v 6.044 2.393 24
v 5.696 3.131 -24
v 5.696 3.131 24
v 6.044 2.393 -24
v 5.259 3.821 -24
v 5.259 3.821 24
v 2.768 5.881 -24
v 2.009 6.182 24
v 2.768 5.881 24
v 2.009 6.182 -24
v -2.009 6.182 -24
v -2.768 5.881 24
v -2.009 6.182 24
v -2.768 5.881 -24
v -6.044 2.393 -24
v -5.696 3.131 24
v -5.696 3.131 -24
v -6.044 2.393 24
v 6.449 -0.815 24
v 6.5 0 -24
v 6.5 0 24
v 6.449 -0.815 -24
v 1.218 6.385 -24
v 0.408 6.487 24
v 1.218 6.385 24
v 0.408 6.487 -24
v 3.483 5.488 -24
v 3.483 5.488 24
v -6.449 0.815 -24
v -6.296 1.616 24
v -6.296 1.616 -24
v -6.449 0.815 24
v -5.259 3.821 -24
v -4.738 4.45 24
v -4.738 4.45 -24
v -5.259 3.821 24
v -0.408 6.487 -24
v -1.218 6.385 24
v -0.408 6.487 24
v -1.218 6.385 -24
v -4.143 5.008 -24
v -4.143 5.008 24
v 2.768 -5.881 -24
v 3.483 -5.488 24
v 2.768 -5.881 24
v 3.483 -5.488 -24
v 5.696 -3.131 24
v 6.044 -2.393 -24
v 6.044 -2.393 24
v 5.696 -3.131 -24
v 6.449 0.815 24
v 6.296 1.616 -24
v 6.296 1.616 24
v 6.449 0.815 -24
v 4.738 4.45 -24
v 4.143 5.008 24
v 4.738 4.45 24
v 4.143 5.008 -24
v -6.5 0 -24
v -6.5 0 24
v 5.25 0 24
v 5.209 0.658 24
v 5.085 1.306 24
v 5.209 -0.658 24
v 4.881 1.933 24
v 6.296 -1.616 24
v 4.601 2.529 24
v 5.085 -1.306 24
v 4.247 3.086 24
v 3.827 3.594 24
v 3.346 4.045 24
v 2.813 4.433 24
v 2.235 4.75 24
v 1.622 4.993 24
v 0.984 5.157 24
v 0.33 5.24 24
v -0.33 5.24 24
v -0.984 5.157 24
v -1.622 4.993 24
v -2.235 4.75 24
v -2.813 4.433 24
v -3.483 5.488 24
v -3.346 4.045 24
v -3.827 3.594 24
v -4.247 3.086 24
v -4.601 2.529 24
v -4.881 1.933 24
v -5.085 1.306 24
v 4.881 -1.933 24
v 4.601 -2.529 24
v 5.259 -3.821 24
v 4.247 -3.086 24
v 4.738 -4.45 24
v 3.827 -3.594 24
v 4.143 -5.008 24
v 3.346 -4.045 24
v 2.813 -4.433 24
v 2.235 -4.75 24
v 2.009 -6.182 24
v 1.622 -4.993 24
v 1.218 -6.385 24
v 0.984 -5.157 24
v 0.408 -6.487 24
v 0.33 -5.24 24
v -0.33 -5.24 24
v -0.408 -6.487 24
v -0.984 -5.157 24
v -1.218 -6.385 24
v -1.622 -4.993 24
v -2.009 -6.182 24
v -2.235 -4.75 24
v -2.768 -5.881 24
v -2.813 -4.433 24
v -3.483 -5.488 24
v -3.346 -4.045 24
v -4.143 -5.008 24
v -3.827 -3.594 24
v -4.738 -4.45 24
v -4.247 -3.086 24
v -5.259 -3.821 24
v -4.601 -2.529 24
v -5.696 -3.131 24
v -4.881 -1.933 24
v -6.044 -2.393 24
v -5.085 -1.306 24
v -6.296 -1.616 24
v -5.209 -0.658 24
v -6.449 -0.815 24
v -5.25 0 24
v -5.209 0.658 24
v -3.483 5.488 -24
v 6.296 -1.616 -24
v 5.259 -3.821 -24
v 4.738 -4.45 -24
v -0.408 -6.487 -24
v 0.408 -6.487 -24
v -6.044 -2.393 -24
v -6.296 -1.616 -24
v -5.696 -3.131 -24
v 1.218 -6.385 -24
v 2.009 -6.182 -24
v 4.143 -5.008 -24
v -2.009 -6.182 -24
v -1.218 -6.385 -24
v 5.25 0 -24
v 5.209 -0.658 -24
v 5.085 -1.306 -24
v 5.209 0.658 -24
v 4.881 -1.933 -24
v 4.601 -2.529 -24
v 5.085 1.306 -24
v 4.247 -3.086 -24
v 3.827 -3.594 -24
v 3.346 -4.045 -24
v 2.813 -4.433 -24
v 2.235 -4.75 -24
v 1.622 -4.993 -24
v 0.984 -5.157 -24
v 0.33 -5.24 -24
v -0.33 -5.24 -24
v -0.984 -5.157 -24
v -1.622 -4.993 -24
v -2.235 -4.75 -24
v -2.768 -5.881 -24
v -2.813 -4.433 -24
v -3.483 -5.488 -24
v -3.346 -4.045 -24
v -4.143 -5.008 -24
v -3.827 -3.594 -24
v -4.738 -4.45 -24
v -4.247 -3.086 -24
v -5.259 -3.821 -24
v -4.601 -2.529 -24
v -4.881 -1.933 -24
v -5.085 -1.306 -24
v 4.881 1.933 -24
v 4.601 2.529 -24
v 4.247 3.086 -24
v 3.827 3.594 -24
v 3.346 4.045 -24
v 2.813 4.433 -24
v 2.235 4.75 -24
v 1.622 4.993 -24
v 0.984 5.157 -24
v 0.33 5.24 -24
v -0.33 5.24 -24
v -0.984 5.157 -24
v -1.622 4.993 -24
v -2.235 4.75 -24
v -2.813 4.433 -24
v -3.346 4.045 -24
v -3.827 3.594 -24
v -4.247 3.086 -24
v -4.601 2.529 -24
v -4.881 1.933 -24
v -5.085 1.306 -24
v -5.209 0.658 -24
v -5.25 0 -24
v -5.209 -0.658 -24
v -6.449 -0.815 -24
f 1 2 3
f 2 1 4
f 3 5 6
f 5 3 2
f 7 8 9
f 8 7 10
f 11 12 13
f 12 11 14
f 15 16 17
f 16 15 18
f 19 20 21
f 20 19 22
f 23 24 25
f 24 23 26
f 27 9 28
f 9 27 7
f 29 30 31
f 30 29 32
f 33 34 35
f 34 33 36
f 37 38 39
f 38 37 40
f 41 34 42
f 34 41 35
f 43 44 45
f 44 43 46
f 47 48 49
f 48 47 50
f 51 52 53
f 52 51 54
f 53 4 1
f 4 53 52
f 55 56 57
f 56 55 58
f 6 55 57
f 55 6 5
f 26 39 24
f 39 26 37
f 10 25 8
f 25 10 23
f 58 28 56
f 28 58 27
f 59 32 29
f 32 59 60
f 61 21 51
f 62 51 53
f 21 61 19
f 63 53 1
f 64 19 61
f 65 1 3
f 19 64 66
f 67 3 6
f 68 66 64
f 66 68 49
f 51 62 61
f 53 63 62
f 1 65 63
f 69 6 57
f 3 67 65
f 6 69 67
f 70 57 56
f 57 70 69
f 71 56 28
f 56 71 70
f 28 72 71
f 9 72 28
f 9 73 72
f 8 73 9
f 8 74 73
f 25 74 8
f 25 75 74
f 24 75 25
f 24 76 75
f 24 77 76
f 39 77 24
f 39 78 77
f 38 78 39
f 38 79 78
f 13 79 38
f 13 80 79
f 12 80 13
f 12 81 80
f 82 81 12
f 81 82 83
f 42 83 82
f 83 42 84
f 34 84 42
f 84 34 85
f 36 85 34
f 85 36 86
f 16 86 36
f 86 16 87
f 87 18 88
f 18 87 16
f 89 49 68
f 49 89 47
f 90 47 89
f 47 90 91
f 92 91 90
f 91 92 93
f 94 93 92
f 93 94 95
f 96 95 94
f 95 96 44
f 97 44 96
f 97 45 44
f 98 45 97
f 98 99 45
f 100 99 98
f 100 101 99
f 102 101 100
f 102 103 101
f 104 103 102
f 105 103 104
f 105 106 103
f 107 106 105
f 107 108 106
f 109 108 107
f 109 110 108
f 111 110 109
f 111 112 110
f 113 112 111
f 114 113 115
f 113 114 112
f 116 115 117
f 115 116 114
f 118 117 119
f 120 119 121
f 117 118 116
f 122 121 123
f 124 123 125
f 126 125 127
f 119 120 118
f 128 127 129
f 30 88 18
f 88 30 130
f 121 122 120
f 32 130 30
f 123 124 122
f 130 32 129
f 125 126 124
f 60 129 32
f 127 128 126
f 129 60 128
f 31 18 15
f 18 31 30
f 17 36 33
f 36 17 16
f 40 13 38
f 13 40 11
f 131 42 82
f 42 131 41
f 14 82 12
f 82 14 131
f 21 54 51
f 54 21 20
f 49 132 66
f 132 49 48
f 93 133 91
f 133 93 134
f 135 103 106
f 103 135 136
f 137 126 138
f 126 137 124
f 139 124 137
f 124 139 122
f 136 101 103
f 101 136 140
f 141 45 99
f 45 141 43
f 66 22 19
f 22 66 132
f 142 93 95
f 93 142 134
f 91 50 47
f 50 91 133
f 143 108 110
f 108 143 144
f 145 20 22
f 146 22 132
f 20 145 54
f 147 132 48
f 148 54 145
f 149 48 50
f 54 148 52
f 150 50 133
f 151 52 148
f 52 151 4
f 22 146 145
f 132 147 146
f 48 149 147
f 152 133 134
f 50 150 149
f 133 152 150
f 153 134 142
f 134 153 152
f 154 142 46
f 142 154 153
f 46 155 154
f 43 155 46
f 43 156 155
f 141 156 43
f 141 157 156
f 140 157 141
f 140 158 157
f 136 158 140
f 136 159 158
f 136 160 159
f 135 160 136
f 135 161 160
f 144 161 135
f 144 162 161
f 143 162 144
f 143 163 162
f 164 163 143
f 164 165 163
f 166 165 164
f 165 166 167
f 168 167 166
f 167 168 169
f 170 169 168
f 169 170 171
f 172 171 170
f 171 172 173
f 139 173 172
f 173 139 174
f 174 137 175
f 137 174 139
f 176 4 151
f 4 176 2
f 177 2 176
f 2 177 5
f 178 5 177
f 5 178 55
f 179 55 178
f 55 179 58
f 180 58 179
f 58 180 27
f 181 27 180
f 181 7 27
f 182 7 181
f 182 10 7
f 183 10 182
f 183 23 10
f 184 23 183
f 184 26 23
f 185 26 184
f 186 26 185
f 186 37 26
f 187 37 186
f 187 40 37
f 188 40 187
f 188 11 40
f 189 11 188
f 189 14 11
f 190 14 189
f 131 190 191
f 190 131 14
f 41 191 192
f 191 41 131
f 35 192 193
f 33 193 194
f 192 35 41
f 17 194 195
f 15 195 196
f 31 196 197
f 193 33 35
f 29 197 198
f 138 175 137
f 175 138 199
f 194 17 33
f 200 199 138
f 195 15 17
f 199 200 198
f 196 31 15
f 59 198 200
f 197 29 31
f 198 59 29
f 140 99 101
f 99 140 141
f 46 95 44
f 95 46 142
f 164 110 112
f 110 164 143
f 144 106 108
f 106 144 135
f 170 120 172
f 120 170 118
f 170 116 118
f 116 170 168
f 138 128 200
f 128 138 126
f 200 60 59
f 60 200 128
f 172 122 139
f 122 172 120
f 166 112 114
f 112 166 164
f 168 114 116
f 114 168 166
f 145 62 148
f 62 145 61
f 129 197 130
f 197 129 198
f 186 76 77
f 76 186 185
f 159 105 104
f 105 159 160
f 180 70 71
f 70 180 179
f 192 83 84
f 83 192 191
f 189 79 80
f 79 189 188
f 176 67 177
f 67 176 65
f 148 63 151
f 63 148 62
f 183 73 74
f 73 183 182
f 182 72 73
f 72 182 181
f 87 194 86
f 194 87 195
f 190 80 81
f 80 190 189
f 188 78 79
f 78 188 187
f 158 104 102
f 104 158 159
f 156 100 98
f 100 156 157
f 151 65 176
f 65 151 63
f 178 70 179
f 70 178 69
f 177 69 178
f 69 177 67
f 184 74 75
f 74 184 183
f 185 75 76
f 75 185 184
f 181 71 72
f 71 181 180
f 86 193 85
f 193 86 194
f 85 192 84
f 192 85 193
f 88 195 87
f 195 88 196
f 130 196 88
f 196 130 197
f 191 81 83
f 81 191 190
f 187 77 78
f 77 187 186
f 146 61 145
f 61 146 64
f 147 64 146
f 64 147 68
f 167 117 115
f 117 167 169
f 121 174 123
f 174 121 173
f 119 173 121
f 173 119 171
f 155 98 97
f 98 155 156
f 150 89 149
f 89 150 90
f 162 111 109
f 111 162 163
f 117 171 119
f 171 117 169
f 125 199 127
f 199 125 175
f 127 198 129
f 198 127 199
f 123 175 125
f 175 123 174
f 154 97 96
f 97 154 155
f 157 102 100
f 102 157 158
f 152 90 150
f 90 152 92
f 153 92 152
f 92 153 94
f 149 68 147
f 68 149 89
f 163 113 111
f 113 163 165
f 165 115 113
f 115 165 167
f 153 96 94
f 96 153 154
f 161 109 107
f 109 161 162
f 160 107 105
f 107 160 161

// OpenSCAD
$fn = 50;


difference() {
	union() {
		translate(v = [0, 0, -24.0000000000]) {
			cylinder(h = 48, r = 6.5000000000);
		}
	}
	union() {
		translate(v = [0, 0, -100.0000000000]) {
			cylinder(h = 200, r = 5.2500000000);
		}
	}
}
